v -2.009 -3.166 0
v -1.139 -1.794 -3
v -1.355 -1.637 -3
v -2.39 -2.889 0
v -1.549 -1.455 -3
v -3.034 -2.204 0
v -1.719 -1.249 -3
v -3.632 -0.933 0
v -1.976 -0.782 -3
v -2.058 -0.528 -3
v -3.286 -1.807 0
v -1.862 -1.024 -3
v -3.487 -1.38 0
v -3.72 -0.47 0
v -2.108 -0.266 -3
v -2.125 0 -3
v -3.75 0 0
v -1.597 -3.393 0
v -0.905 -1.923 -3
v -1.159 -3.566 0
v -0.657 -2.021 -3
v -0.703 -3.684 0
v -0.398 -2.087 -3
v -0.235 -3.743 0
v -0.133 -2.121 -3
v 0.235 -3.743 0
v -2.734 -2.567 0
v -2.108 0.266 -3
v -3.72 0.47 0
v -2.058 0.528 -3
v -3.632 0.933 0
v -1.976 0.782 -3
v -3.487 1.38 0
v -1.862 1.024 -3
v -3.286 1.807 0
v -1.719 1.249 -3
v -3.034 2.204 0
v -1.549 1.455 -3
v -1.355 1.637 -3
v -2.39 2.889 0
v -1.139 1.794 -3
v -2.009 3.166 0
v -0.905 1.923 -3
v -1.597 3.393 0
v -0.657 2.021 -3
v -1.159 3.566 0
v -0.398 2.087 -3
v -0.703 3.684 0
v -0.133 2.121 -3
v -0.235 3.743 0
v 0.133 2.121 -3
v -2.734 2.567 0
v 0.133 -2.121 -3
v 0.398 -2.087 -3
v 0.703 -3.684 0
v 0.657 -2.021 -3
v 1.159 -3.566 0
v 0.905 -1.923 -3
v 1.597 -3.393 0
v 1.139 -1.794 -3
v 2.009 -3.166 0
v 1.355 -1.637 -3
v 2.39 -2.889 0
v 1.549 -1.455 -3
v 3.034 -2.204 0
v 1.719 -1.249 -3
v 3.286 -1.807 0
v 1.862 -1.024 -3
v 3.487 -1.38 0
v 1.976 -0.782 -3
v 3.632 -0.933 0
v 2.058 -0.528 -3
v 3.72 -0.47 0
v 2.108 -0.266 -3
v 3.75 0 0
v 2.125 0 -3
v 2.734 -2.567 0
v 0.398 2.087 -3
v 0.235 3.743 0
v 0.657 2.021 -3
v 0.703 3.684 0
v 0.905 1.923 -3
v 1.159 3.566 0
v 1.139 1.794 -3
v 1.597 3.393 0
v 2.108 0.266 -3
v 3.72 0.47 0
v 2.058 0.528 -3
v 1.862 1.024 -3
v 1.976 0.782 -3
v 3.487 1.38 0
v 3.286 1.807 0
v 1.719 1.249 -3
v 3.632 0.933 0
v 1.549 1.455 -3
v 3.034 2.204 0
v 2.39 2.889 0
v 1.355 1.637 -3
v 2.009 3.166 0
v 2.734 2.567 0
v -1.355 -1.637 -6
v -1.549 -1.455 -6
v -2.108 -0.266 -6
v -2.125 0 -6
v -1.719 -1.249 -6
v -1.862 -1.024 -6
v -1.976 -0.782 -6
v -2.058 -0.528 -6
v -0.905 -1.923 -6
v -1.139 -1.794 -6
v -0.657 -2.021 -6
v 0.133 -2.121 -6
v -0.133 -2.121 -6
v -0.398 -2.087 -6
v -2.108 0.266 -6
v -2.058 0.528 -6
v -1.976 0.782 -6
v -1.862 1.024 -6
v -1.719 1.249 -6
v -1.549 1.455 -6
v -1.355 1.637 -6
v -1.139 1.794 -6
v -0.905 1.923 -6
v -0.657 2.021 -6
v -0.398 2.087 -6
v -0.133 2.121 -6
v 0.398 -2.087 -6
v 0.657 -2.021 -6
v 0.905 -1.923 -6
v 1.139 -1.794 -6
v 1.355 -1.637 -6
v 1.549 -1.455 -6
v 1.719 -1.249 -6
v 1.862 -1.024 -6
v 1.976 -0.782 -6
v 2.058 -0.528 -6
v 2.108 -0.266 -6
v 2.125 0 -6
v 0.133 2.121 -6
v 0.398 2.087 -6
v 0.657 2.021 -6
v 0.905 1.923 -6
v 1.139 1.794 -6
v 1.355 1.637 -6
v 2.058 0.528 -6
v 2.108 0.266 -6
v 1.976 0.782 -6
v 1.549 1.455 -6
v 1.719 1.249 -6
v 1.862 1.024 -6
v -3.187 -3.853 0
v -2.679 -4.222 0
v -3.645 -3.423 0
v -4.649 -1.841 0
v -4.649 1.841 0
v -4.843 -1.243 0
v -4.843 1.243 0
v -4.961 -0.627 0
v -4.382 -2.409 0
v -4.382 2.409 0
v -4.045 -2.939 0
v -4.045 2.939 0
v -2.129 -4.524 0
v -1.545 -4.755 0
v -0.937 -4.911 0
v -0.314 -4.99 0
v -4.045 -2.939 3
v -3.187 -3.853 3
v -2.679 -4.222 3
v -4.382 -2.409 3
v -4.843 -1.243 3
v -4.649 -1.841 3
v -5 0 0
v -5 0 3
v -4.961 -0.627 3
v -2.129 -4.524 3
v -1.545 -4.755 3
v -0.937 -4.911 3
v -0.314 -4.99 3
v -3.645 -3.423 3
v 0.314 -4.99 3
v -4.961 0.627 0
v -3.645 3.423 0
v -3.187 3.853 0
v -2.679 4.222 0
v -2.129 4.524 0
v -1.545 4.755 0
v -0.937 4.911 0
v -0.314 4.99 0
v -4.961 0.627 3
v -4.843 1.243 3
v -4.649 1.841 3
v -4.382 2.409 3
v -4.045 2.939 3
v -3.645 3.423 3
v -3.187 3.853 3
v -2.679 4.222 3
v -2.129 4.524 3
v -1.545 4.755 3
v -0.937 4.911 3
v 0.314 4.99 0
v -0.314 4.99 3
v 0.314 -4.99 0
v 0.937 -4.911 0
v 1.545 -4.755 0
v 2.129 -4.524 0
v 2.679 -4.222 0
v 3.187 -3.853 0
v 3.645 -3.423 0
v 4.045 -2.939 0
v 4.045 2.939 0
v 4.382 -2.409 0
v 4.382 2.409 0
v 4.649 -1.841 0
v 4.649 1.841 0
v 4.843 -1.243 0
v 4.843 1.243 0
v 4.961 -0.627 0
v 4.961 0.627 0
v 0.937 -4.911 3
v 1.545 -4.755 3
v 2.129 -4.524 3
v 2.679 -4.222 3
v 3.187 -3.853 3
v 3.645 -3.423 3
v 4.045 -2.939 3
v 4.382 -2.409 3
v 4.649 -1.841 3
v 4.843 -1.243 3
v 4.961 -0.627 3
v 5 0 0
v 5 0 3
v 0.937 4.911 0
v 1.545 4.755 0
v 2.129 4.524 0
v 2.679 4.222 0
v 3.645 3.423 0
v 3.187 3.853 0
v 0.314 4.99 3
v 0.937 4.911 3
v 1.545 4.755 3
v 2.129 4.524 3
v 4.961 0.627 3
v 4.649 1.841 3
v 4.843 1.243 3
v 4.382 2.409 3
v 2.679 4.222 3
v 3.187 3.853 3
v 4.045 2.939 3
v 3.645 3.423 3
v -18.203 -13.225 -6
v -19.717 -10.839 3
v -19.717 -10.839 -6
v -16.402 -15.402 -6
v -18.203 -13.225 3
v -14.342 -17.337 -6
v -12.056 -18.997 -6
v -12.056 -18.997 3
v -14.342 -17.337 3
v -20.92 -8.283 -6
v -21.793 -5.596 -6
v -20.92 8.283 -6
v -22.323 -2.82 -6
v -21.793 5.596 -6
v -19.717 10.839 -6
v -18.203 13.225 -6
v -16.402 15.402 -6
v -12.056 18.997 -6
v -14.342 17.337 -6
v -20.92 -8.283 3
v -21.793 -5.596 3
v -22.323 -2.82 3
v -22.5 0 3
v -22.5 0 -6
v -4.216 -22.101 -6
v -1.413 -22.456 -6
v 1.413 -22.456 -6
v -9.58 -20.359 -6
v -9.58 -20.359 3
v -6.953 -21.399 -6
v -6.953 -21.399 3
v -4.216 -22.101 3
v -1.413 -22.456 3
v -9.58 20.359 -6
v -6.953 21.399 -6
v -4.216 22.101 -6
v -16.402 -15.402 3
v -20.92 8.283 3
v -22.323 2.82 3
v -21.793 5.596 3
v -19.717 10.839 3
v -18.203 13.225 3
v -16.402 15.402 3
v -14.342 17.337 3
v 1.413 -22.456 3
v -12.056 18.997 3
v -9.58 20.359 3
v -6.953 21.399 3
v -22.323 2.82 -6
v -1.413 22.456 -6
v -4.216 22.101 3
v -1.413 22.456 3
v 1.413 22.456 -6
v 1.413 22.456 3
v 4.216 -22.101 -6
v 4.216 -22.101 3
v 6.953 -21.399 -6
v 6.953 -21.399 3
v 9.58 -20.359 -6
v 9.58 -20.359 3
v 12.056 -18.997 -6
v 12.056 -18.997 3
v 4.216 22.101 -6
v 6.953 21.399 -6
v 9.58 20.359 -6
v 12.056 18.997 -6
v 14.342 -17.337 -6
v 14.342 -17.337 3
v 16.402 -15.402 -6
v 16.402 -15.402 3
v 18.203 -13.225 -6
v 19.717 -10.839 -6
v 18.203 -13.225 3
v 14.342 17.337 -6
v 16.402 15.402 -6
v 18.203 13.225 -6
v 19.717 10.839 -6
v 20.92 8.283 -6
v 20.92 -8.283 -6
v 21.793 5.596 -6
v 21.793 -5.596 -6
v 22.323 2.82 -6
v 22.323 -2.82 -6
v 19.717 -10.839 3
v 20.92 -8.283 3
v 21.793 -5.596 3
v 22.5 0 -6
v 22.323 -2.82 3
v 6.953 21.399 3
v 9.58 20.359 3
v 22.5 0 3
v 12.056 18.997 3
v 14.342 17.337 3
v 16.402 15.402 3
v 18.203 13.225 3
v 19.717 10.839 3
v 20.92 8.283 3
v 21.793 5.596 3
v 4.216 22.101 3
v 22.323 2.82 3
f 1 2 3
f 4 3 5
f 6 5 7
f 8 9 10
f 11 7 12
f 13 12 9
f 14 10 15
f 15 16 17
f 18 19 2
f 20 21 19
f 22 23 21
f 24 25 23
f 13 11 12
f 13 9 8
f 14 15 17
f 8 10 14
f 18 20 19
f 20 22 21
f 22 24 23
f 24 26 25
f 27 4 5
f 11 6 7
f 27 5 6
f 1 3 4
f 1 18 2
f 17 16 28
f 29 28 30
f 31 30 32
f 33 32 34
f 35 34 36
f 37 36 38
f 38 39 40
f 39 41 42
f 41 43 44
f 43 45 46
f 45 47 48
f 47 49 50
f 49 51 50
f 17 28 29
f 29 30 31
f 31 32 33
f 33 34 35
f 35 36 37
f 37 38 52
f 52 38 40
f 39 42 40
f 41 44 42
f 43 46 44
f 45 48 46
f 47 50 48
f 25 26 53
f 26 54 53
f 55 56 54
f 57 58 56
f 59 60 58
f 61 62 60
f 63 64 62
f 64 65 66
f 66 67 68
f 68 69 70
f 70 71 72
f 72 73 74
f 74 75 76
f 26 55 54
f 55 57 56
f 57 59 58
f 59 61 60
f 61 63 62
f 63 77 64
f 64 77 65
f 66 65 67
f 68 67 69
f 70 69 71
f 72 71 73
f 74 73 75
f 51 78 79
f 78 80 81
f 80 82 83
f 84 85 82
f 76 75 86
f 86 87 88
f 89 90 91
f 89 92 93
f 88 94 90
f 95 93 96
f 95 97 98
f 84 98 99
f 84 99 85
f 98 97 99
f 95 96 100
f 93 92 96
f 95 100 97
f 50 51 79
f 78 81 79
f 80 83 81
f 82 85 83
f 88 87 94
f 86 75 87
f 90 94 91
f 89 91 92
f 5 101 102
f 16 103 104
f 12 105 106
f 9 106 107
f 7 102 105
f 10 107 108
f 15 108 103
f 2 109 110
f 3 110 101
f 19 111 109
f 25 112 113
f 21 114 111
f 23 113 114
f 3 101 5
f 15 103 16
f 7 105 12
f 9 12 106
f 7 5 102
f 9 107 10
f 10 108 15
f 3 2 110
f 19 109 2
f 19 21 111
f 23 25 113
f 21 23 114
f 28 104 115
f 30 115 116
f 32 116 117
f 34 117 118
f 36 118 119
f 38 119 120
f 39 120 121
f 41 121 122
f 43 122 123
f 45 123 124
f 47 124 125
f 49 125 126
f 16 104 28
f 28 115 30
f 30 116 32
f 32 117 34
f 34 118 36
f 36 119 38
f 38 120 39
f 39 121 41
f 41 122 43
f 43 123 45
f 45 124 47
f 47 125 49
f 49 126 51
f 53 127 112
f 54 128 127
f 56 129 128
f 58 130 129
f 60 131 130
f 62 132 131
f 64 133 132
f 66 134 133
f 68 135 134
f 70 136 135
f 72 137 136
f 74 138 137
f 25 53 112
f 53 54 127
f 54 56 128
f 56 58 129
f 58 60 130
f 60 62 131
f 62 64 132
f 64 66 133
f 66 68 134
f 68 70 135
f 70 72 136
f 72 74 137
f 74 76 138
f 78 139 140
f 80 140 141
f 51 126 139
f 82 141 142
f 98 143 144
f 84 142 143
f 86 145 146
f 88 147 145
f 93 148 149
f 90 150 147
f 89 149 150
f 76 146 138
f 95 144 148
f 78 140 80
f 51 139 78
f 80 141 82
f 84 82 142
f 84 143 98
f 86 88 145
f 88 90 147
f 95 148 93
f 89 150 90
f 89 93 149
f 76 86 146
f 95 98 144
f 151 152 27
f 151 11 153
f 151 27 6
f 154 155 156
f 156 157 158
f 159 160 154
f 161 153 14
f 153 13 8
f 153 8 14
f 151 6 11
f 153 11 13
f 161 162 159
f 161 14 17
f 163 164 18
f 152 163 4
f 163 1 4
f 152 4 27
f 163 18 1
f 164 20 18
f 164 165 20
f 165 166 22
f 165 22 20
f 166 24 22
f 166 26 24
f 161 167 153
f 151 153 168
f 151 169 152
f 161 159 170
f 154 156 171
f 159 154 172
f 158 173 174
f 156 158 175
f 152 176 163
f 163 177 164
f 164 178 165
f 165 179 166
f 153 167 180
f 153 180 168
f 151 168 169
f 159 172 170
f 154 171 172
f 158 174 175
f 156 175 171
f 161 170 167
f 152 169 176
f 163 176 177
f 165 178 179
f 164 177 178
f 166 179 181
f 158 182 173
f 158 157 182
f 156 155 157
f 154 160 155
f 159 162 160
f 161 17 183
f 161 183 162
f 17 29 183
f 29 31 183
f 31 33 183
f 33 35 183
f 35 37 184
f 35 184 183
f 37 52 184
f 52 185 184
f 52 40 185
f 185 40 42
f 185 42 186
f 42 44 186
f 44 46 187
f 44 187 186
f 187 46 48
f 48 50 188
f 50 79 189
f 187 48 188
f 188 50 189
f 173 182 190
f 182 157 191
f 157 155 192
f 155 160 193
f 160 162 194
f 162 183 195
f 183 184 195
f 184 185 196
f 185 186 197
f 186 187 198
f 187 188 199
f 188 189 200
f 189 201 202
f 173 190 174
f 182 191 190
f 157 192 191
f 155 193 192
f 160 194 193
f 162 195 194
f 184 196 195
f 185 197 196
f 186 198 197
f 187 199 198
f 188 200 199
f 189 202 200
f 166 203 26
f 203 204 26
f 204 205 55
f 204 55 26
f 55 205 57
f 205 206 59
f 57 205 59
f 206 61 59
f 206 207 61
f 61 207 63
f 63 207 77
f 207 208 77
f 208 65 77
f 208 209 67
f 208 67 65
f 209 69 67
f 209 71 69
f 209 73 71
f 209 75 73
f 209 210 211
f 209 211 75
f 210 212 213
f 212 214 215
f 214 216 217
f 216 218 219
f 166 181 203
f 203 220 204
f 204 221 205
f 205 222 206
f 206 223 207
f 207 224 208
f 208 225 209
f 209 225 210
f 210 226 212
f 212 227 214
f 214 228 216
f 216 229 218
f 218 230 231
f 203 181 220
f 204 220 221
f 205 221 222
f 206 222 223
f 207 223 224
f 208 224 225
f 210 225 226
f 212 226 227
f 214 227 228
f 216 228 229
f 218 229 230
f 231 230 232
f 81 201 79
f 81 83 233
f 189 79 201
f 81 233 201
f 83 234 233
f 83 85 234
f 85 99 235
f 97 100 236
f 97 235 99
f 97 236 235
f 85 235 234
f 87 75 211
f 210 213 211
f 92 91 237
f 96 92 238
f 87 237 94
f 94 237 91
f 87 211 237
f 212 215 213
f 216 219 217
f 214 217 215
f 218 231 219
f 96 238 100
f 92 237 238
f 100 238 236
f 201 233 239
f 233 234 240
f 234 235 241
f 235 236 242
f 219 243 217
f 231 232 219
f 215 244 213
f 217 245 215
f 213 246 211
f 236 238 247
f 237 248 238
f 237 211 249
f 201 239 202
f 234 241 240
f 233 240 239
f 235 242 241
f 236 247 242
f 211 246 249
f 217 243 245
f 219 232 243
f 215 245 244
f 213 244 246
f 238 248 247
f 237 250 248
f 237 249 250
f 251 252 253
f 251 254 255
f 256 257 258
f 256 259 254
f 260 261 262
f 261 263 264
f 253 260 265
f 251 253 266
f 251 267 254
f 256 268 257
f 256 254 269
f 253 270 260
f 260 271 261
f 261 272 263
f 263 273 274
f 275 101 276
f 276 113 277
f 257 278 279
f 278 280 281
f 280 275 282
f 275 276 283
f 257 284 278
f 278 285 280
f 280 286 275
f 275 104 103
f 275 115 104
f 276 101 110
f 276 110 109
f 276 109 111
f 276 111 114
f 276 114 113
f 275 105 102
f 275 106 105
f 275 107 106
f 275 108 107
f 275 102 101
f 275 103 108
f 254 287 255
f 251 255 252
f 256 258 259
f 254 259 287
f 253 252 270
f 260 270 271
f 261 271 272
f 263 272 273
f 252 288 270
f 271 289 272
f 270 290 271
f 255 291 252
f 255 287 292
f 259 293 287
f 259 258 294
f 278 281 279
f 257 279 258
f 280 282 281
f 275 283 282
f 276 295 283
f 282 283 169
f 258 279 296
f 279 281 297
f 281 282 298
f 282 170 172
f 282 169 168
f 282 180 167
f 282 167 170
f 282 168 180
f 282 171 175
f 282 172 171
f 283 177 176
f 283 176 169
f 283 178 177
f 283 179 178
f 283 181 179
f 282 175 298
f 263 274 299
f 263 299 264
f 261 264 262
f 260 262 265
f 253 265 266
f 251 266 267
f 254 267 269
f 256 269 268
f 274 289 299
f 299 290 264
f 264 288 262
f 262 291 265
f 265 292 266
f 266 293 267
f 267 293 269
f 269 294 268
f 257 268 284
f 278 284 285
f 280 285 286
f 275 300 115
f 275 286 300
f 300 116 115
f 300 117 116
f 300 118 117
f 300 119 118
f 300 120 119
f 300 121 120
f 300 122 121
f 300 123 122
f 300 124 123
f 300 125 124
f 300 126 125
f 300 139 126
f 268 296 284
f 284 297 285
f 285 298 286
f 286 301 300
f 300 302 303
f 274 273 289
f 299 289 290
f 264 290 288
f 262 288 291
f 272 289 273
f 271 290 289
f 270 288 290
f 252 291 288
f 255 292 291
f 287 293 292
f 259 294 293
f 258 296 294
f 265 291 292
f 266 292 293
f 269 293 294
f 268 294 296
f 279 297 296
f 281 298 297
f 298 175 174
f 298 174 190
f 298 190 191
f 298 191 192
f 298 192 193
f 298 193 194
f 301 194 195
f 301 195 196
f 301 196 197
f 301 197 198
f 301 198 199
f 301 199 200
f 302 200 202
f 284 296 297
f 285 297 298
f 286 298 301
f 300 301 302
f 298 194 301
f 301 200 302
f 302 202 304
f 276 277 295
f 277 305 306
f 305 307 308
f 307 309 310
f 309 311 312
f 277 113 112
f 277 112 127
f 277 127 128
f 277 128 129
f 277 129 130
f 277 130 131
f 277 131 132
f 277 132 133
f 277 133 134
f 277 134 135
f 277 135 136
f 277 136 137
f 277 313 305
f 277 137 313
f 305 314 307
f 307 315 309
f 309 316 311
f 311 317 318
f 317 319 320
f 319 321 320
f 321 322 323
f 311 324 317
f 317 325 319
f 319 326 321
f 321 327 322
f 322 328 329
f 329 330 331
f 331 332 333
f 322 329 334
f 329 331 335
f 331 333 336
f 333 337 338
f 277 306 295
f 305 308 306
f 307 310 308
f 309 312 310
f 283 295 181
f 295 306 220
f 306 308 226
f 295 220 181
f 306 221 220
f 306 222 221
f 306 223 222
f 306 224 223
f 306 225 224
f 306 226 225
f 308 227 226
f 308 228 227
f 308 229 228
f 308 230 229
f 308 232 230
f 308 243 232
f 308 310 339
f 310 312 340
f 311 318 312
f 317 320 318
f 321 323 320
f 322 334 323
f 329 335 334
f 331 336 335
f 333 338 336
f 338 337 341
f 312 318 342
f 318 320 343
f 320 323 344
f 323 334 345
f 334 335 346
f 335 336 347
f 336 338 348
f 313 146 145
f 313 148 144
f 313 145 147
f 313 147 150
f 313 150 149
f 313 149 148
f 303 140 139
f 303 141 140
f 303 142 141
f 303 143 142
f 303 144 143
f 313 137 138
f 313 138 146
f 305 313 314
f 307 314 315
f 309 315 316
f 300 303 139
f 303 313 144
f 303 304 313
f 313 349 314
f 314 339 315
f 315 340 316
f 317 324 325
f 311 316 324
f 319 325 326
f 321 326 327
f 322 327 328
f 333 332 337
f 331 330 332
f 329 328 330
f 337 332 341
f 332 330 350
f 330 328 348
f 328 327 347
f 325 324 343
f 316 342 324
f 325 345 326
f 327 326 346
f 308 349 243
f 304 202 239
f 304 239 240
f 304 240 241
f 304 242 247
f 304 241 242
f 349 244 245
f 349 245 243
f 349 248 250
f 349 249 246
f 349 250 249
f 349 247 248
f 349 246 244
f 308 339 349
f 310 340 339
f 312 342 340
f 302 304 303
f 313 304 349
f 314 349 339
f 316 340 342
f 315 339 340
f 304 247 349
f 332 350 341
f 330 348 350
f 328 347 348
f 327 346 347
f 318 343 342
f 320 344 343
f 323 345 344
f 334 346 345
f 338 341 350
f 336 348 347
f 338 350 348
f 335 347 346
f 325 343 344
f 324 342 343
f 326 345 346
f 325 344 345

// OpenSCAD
$fn = 50;


difference() {
	union() {
		translate(v = [0, 0, -6.0000000000]) {
			cylinder(h = 9, r = 22.5000000000);
		}
	}
	union() {
		translate(v = [0, 0, 0]) {
			rotate(a = [0, 0, 0]) {
				difference() {
					union() {
						translate(v = [0, 0, -9.0000000000]) {
							cylinder(h = 9, r = 2.0000000000);
						}
						translate(v = [0, 0, -3]) {
							cylinder(h = 3, r1 = 2.1250000000, r2 = 3.7500000000);
						}
						translate(v = [0, 0, -9.0000000000]) {
							cylinder(h = 9, r = 2.1250000000);
						}
						translate(v = [0, 0, -9.0000000000]) {
							cylinder(h = 9, r = 2.0000000000);
						}
					}
					union();
				}
			}
		}
		#cylinder(h = 3, r = 5.0000000000);
	}
}
